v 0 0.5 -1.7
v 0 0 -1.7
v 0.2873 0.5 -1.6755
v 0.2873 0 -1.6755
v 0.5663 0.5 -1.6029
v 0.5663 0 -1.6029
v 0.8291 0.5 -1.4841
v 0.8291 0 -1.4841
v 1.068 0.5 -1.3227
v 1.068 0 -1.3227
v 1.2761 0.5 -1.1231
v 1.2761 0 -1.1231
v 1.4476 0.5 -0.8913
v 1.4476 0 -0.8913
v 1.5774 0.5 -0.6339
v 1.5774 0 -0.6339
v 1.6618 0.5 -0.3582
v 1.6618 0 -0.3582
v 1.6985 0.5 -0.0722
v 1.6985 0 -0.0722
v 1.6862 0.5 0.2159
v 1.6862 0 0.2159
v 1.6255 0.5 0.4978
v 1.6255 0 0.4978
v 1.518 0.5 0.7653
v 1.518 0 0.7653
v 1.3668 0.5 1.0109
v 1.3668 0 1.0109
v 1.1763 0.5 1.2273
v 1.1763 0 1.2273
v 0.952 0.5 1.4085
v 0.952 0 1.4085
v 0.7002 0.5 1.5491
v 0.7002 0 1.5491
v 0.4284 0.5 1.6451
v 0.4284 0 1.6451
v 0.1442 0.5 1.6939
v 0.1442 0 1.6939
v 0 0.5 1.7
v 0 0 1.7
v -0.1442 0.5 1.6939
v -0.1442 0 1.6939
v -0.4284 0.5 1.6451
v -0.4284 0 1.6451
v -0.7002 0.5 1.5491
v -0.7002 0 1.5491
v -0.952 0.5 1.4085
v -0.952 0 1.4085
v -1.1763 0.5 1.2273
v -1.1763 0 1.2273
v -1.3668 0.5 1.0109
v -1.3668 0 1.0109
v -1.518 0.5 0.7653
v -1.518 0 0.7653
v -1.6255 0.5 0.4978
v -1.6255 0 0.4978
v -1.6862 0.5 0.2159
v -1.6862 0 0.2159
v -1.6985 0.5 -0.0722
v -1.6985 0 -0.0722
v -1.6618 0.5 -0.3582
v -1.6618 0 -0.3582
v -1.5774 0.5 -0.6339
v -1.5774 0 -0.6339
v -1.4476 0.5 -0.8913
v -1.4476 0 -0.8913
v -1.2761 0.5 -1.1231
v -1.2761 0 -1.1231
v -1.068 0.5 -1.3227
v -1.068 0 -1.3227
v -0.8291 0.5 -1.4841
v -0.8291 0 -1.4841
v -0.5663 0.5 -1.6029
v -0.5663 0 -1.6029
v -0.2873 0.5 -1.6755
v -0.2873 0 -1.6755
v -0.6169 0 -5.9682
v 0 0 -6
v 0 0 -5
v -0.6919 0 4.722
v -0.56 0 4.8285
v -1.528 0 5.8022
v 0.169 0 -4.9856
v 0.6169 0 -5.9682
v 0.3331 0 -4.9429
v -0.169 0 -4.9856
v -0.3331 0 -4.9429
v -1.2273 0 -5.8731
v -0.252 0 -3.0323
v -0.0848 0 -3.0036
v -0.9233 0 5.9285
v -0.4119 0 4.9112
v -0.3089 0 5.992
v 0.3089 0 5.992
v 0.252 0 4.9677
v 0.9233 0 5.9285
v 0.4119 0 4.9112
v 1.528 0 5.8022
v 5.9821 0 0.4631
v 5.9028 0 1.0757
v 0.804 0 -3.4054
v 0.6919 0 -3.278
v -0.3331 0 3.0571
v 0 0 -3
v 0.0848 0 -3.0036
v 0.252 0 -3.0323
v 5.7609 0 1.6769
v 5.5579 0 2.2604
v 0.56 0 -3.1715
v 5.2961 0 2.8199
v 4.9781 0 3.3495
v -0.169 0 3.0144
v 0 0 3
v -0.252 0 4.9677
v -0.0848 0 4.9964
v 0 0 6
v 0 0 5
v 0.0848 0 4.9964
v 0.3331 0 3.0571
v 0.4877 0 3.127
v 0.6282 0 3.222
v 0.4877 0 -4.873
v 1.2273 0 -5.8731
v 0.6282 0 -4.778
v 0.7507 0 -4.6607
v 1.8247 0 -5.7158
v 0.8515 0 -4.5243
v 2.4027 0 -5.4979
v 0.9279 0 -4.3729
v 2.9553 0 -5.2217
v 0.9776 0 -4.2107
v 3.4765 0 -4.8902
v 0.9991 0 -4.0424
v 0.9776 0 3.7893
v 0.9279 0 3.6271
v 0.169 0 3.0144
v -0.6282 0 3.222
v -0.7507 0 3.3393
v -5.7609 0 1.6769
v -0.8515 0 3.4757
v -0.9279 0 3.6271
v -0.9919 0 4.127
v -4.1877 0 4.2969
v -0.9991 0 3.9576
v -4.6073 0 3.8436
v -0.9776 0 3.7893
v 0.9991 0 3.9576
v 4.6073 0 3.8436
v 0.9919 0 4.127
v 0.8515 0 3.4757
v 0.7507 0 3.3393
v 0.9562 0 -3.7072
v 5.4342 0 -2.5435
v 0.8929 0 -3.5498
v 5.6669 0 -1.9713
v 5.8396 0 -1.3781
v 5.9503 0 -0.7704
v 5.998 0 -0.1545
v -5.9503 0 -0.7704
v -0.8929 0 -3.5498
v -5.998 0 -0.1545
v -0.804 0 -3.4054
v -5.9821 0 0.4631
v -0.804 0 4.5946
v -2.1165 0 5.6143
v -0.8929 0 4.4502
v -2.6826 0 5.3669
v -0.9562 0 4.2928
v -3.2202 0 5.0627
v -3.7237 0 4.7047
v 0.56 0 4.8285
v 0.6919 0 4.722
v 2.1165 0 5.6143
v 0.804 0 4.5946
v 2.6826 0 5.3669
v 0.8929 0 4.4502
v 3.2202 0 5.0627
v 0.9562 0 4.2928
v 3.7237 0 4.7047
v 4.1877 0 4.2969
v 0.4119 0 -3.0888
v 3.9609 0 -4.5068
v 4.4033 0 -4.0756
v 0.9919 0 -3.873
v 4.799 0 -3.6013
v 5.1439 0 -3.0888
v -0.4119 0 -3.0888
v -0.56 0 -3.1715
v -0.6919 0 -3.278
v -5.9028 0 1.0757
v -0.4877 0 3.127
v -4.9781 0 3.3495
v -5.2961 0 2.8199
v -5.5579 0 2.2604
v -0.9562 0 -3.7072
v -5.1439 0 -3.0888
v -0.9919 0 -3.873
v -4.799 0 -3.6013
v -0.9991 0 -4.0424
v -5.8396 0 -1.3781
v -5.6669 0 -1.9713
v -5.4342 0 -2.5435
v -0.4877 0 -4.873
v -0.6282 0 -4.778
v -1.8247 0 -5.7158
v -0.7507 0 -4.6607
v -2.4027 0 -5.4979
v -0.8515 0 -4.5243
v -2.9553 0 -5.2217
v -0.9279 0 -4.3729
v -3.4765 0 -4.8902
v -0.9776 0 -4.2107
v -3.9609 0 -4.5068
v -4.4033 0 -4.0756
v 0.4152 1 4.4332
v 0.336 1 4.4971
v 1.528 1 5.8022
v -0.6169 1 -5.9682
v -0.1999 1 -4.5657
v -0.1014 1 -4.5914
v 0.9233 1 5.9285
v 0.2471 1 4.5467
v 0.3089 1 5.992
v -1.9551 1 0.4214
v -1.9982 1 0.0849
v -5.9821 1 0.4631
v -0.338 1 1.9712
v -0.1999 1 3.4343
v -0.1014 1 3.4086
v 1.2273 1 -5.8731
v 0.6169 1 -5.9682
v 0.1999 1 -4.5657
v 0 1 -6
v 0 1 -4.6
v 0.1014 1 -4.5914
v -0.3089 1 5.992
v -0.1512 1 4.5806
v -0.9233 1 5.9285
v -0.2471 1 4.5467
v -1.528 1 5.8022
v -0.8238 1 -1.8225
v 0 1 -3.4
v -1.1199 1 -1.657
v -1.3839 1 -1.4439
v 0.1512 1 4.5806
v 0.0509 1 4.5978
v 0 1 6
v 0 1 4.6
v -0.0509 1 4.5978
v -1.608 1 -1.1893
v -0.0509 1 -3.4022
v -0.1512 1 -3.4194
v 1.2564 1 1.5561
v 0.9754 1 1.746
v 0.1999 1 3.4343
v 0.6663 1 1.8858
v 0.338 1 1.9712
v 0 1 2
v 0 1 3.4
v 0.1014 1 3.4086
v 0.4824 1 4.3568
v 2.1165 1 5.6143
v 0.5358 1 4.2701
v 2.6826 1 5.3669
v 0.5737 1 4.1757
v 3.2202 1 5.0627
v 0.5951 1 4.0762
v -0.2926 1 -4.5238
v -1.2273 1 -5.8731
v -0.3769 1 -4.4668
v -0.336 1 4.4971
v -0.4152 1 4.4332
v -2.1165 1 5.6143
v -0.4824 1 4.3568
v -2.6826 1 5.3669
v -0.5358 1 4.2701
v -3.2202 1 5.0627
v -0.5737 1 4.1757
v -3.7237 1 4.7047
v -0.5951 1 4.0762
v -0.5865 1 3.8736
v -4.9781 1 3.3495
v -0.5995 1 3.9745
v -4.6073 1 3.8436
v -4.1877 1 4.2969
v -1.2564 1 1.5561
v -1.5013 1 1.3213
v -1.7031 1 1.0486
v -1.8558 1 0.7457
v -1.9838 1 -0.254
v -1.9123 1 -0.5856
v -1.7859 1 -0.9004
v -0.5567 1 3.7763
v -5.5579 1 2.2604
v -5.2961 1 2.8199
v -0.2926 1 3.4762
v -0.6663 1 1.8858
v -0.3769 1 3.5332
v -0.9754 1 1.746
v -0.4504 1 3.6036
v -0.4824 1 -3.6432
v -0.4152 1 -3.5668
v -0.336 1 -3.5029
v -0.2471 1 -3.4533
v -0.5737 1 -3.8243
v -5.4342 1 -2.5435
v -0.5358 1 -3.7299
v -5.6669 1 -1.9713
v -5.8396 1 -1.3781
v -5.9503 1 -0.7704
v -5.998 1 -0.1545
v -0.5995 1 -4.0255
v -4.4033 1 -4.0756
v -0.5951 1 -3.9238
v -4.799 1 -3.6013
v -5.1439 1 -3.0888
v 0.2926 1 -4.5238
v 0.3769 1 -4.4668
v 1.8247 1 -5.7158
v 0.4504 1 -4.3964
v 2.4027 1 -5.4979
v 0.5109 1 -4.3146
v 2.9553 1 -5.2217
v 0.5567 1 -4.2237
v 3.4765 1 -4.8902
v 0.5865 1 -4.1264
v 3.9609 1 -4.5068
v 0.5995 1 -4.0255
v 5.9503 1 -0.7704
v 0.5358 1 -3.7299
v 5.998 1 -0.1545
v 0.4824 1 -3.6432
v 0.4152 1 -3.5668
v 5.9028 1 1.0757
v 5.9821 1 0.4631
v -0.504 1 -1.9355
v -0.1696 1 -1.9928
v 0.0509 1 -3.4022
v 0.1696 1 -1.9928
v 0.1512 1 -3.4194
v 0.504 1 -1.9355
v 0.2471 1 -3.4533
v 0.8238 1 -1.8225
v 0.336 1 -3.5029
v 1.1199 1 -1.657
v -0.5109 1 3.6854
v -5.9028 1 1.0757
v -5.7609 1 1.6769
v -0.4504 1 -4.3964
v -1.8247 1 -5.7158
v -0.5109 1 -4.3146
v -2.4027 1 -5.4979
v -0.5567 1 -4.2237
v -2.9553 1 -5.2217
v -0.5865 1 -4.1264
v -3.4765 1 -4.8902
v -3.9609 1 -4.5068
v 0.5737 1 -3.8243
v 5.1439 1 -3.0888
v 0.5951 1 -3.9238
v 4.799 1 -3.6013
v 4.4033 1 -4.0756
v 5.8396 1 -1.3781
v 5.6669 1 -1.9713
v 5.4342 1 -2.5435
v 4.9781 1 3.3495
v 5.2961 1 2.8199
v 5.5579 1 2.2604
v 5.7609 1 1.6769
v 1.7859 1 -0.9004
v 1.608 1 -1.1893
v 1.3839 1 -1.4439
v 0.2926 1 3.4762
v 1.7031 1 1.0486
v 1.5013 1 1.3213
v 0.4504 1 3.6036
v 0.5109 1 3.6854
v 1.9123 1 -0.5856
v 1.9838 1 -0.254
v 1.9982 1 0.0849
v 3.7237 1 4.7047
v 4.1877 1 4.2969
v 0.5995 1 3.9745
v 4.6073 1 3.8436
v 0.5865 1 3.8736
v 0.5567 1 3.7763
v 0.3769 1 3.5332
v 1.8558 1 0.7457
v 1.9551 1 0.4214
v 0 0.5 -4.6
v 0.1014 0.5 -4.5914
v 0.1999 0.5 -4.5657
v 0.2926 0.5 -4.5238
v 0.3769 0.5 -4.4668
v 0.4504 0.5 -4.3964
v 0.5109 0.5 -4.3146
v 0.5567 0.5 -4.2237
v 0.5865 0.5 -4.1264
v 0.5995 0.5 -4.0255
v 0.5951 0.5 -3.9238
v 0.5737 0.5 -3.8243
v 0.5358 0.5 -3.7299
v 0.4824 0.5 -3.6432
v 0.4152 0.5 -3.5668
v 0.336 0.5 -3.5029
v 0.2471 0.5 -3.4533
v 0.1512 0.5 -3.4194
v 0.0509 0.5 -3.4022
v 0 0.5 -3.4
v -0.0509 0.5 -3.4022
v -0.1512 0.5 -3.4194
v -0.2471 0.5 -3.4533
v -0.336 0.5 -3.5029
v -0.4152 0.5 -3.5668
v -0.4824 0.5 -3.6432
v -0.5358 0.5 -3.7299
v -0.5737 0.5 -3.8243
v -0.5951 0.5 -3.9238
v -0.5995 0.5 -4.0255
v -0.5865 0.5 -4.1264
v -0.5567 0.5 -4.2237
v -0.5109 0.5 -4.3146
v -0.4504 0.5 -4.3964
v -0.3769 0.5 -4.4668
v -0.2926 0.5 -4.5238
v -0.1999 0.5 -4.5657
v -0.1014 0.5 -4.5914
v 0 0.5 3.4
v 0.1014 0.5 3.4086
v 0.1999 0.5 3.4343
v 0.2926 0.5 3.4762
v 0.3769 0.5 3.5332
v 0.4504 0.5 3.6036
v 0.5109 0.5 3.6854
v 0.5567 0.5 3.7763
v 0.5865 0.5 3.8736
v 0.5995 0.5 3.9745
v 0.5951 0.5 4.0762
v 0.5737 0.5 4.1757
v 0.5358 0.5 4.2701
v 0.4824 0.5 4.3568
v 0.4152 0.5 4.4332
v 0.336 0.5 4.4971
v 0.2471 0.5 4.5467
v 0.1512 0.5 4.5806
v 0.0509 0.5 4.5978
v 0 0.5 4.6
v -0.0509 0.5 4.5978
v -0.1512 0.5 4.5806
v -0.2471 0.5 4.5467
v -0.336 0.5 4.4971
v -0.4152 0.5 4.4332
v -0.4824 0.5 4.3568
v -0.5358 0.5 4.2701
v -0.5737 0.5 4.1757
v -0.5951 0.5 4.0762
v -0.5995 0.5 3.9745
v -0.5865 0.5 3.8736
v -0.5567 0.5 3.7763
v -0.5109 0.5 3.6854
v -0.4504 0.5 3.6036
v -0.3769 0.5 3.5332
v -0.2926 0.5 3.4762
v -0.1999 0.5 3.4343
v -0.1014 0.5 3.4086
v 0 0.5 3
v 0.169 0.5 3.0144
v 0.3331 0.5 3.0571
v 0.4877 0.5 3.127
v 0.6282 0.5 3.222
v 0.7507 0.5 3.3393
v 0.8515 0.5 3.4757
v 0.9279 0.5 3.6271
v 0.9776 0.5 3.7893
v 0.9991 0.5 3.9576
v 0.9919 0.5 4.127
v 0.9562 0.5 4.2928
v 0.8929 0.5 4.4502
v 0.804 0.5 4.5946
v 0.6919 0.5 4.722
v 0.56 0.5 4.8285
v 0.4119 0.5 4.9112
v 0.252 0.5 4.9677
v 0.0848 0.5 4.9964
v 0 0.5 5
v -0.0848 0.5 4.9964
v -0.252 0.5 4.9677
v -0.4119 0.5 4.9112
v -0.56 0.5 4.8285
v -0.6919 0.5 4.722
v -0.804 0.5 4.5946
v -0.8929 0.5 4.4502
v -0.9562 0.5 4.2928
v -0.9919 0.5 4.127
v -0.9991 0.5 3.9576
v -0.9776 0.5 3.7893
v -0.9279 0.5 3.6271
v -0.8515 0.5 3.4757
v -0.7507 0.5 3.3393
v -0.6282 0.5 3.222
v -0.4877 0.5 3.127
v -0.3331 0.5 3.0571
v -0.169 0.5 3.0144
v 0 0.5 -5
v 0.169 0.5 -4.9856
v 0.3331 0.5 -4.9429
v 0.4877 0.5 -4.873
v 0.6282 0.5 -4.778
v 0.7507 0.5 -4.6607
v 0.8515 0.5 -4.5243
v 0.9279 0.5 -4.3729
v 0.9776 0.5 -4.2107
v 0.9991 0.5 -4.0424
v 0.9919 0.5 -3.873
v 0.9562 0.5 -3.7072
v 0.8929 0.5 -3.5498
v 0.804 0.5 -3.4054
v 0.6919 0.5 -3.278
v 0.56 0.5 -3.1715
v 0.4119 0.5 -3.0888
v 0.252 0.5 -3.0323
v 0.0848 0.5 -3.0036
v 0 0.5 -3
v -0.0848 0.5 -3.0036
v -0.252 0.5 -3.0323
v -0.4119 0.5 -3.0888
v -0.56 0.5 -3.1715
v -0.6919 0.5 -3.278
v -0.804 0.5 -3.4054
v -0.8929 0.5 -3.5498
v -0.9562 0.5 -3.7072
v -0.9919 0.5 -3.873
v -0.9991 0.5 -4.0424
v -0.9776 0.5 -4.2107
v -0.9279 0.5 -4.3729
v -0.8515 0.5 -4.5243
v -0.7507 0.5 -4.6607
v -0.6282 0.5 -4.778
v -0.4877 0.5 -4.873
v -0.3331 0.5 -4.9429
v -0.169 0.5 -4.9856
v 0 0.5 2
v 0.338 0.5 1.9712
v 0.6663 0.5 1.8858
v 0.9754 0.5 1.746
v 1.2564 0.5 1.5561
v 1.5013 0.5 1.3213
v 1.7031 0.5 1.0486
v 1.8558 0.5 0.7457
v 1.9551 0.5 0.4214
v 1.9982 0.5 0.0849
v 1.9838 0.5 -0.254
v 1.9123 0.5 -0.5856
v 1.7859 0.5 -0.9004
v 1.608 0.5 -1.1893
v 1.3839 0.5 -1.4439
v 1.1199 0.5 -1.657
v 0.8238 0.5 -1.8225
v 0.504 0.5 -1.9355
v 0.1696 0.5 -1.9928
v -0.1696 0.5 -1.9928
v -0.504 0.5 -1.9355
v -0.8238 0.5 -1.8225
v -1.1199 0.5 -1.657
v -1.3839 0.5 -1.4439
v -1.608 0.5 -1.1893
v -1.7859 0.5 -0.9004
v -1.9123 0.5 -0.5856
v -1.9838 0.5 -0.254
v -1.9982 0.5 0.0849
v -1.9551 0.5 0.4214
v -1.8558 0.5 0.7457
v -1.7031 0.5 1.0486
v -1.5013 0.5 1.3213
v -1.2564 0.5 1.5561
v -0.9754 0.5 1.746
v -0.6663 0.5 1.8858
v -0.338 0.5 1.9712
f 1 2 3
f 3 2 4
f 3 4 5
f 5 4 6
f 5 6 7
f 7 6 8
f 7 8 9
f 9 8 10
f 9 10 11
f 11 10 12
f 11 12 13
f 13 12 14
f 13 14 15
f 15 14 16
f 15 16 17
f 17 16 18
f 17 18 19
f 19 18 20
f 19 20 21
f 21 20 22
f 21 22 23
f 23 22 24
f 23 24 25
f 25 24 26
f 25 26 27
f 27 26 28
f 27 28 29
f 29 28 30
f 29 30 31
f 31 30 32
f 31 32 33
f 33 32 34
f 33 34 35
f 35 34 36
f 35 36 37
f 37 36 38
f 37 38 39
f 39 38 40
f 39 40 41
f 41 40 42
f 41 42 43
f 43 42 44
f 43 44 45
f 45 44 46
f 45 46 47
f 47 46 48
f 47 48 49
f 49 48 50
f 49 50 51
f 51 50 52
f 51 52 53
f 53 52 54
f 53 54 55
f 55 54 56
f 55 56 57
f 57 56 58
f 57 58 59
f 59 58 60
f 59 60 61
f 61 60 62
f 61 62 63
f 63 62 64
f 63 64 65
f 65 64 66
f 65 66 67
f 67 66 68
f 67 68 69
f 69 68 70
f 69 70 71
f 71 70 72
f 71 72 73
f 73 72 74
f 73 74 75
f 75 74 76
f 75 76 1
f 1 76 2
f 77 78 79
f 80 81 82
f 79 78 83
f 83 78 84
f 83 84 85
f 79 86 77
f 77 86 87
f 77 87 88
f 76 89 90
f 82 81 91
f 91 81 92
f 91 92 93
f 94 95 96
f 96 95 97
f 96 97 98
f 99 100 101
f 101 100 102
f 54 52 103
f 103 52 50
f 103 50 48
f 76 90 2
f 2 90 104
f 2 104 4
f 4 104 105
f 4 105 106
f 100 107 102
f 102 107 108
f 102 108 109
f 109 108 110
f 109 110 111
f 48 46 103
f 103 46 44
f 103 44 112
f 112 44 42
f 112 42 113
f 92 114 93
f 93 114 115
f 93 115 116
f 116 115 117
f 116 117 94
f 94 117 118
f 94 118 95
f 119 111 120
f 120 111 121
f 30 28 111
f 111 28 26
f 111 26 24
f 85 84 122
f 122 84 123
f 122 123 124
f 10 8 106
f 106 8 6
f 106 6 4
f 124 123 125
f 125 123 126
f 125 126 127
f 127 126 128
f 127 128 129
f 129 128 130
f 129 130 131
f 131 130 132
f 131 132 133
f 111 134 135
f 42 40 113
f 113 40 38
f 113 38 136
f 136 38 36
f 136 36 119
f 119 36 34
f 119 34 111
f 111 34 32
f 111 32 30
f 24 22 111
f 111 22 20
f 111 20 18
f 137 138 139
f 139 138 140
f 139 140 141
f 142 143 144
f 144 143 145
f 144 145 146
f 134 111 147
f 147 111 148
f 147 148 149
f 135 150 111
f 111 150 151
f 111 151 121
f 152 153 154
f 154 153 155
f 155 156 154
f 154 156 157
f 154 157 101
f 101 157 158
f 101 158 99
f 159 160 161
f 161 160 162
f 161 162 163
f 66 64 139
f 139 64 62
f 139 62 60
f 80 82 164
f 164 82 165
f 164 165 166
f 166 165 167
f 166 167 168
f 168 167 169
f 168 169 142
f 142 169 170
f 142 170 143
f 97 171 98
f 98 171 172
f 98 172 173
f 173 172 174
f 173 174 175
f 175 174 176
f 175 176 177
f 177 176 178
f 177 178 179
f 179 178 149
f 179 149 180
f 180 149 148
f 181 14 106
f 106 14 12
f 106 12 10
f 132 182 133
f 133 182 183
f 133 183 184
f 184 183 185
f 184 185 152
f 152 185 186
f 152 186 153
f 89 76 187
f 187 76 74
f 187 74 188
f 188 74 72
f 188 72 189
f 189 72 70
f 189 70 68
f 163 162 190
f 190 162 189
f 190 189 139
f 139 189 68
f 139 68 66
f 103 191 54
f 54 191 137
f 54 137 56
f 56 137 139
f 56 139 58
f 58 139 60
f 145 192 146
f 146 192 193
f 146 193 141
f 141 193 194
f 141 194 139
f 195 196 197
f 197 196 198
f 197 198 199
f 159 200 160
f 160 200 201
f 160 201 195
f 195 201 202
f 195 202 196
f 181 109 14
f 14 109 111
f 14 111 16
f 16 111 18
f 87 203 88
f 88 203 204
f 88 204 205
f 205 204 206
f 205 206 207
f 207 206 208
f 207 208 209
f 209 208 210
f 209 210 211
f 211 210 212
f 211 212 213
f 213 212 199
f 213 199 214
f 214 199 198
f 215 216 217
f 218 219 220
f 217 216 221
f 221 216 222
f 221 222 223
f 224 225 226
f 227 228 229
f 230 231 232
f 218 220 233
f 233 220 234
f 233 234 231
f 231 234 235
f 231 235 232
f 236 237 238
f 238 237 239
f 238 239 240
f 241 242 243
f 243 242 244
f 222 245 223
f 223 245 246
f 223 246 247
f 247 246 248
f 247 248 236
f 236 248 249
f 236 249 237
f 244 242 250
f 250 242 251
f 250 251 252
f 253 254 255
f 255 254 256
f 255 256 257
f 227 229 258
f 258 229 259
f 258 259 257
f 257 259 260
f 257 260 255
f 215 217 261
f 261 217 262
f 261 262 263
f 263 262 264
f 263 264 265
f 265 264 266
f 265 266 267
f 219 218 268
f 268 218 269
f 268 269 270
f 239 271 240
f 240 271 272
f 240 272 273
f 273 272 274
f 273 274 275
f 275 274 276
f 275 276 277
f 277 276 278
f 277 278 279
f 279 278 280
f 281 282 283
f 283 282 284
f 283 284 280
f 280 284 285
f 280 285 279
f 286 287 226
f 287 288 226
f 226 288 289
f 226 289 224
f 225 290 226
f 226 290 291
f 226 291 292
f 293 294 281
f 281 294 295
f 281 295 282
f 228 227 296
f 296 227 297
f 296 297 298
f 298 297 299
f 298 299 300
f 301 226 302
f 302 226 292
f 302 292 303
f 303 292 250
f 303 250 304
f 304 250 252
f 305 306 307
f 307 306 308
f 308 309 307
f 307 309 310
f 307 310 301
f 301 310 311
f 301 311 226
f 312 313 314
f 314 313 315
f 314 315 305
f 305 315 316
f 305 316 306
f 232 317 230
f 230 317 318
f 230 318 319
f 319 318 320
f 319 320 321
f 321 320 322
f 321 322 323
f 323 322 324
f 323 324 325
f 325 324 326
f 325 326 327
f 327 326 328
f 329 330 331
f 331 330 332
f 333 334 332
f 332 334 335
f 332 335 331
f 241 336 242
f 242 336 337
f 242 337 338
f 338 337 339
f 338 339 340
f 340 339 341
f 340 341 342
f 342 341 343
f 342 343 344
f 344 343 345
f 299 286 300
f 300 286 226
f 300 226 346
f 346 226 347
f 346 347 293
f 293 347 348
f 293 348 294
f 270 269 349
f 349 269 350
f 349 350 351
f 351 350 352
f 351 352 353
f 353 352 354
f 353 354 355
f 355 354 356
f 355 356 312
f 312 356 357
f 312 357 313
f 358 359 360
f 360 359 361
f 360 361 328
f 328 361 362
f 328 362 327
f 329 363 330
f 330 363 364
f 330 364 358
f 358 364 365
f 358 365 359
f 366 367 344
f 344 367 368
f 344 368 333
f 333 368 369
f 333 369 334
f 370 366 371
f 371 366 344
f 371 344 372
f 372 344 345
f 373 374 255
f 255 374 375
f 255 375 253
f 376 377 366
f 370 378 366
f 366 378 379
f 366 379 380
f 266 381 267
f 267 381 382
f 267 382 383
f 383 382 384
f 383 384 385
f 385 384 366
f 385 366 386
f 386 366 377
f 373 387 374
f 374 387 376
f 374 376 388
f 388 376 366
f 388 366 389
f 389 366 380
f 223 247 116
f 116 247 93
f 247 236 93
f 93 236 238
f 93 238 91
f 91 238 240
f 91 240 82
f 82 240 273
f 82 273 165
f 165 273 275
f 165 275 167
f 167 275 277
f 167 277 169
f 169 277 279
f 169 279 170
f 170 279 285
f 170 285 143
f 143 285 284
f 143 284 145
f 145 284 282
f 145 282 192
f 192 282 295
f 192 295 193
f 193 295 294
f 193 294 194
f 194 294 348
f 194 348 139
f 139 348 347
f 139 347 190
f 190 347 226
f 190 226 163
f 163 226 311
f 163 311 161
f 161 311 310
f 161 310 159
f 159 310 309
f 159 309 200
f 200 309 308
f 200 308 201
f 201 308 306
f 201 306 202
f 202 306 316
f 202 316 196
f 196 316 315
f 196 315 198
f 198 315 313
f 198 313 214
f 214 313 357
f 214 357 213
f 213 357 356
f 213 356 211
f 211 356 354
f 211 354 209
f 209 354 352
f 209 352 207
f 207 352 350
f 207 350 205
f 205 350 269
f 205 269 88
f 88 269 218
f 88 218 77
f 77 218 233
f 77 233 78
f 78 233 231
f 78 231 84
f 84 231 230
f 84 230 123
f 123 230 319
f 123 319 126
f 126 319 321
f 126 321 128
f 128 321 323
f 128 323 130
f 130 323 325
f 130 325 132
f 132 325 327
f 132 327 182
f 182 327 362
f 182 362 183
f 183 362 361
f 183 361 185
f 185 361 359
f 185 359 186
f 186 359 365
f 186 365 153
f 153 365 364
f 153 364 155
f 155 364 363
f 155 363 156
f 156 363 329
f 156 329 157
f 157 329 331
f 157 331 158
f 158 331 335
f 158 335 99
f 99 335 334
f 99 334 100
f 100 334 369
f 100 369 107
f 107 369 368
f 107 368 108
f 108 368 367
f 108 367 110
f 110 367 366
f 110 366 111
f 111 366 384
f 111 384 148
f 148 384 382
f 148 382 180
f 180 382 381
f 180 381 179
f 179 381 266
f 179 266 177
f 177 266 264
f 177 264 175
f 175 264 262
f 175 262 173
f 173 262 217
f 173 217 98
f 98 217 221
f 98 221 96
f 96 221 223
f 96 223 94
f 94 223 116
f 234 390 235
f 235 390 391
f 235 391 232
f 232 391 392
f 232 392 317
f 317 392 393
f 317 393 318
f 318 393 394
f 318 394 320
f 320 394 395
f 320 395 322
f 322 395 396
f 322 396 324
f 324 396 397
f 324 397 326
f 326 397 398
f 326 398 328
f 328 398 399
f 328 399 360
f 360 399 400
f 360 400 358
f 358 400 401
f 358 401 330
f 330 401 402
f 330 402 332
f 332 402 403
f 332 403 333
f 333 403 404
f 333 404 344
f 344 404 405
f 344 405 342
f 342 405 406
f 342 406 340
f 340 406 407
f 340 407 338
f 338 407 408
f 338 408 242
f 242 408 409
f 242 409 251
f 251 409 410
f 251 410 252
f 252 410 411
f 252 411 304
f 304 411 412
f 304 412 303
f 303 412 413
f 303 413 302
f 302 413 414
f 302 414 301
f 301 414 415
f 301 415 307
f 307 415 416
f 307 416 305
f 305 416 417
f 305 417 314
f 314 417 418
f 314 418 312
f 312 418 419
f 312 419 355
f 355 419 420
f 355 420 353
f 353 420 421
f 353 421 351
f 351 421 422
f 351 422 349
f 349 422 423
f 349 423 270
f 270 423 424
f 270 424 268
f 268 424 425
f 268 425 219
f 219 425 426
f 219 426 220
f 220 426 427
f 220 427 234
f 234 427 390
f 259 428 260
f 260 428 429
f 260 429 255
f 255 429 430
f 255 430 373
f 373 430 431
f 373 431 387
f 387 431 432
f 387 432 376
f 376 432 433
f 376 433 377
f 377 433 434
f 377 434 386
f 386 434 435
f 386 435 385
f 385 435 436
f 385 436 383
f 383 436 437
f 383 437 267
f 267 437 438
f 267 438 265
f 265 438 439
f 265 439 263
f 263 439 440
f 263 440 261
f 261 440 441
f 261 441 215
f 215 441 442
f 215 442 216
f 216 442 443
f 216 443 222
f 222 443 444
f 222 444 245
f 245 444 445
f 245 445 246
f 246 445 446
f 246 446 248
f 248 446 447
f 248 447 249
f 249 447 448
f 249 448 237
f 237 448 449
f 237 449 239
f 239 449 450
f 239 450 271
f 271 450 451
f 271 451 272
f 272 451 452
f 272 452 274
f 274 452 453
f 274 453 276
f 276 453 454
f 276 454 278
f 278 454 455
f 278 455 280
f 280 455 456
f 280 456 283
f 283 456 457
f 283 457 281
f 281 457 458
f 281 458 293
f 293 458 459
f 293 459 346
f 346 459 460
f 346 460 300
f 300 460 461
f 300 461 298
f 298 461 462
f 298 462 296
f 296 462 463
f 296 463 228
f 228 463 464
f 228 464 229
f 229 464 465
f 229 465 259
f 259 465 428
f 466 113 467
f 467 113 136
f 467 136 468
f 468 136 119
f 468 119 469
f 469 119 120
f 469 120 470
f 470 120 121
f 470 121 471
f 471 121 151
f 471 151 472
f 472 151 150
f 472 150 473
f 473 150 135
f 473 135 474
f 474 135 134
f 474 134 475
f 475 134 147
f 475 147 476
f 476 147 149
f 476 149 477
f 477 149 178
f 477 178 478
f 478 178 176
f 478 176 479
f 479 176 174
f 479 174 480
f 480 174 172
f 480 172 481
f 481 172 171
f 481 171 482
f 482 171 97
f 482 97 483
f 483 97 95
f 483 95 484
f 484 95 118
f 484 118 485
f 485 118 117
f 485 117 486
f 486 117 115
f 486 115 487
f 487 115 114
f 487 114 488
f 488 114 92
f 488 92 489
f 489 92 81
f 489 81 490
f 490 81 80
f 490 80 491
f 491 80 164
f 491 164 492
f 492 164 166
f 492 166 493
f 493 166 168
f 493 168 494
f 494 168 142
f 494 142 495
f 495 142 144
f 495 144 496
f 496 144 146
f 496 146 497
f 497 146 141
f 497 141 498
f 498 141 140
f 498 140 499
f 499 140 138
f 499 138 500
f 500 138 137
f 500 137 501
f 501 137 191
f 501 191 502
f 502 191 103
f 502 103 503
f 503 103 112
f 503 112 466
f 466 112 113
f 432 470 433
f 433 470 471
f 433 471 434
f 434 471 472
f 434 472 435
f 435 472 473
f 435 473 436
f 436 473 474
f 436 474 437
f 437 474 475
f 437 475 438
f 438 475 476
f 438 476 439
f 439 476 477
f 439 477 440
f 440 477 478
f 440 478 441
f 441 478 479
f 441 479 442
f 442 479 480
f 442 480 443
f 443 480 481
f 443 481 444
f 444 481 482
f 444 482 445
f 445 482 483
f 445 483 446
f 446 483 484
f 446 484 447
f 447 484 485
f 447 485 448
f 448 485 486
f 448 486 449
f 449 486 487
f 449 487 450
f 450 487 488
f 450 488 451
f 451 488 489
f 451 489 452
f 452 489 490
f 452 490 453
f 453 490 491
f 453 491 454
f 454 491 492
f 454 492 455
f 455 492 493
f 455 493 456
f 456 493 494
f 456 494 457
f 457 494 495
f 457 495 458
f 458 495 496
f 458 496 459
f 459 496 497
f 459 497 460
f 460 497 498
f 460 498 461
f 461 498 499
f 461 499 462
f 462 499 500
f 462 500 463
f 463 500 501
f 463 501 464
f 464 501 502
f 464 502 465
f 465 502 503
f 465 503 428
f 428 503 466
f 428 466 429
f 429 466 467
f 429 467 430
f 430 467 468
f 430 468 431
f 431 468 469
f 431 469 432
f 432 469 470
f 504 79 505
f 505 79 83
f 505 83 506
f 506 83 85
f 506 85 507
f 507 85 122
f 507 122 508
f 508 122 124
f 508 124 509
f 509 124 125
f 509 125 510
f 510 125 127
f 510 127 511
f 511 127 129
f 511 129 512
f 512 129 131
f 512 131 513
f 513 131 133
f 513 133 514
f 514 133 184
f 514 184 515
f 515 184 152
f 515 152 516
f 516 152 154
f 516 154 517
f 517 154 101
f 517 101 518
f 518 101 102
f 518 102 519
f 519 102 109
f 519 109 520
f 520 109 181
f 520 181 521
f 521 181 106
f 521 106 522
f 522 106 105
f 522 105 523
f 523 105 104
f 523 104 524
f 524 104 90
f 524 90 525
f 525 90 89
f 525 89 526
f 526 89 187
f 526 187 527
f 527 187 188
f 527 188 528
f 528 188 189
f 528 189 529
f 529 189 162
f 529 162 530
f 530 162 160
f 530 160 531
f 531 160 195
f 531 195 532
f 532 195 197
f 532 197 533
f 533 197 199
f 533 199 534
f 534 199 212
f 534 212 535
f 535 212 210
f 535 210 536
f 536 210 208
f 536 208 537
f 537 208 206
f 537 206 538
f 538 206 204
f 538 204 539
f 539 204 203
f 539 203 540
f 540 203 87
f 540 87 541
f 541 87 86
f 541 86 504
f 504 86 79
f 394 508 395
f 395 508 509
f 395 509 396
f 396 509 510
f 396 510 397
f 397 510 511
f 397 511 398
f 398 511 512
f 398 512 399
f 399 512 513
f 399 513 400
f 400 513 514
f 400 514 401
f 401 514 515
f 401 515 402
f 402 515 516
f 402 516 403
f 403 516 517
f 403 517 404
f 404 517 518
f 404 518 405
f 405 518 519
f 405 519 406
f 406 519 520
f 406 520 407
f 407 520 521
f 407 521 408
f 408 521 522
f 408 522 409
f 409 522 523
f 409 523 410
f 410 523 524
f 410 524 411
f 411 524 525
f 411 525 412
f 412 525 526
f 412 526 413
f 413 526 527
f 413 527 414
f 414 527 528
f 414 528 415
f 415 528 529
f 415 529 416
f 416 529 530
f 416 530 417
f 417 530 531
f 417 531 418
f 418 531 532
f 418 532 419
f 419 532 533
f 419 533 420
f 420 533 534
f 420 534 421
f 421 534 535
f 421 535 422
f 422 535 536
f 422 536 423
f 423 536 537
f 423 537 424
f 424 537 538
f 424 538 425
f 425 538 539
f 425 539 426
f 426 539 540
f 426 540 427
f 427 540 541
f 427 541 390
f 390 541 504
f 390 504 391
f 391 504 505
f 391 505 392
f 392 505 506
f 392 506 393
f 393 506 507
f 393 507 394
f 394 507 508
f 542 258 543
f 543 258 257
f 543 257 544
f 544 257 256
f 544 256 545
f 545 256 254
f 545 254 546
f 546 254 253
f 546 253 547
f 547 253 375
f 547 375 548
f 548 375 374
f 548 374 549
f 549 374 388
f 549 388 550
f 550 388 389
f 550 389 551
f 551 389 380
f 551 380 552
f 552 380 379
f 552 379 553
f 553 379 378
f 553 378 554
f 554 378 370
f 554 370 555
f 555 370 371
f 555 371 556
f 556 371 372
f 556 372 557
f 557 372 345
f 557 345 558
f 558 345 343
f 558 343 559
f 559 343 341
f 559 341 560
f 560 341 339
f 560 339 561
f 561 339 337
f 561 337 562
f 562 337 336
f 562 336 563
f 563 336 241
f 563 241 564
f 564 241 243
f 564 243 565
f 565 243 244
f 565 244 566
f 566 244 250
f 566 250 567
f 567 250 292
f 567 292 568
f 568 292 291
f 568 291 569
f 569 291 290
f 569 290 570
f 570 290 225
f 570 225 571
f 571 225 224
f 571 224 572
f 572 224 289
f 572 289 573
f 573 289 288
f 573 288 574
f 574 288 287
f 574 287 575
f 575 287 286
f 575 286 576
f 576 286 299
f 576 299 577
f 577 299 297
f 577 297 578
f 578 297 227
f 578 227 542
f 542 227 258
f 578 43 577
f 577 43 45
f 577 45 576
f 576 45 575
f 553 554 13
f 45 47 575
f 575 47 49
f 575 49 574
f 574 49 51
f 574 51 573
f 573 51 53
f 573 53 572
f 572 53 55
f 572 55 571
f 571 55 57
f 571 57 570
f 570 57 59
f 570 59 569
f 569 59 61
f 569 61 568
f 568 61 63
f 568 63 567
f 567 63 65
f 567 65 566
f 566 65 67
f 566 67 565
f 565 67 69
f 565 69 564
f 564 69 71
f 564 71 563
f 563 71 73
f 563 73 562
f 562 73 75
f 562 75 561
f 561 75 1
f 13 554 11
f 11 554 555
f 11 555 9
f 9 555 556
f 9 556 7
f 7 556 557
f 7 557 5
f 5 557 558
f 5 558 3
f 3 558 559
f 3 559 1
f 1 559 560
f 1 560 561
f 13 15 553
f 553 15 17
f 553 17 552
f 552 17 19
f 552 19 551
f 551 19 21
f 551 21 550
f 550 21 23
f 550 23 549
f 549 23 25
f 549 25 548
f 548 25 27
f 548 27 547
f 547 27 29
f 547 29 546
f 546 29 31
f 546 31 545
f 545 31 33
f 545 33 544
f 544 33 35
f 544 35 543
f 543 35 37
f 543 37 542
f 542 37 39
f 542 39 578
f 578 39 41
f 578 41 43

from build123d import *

# Parameters (mm, degrees)
SKETCH1_R           = 6
SKETCH1_R_2         = 1.7
SKETCH1_R_3         = 1
SKETCH1_R_4         = 0.6
BASEPLATE_DEPTH     = 1
SKETCH1_3_R         = 0.6
SCREWHOLES_DEPTH    = 2
SKETCH1_4_R         = 1
SKETCH1_4_R_2       = 0.6
SCREWHATSLOTS_DEPTH = 0.5
SKETCH2_R           = 2
BEARINGSLOT_DEPTH   = 0.5


with BuildPart() as part:
    # Sketch1 → BasePlate (new body)
    with BuildSketch(Plane(origin=(0, 0, 0), x_dir=(1, 0, 0), z_dir=(0, 1, 0))):
        Circle(SKETCH1_R)
        Circle(SKETCH1_R_2, mode=Mode.SUBTRACT)
        with Locations((0, 4)):
            Circle(SKETCH1_R_3, mode=Mode.SUBTRACT)
        with Locations((0, -4)):
            Circle(SKETCH1_R_3, mode=Mode.SUBTRACT)
        with Locations((0, -4)):
            Circle(SKETCH1_R_4)
        with Locations((0, 4)):
            Circle(SKETCH1_R_4)
        with Locations((0, 4)):
            Circle(SKETCH1_R_3)
        with Locations((0, 4)):
            Circle(SKETCH1_R_4, mode=Mode.SUBTRACT)
        with Locations((0, -4)):
            Circle(SKETCH1_R_3)
        with Locations((0, -4)):
            Circle(SKETCH1_R_4, mode=Mode.SUBTRACT)
    extrude(amount=BASEPLATE_DEPTH)

    # Sketch1<3> → ScrewHoles (cut, through all)
    with BuildSketch(Plane(origin=(0, 0, 0), x_dir=(1, 0, 0), z_dir=(0, 1, 0))):
        with Locations((0, -4)):
            Circle(SKETCH1_3_R)
        with Locations((0, 4)):
            Circle(SKETCH1_3_R)
    extrude(amount=SCREWHOLES_DEPTH, mode=Mode.SUBTRACT)

    # Sketch1<4> → ScrewHatSlots (cut)
    with BuildSketch(Plane(origin=(0, 0, 0), x_dir=(1, 0, 0), z_dir=(0, 1, 0))):
        with Locations((0, -4)):
            Circle(SKETCH1_4_R)
        with Locations((0, -4)):
            Circle(SKETCH1_4_R_2, mode=Mode.SUBTRACT)
        with Locations((0, 4)):
            Circle(SKETCH1_4_R)
        with Locations((0, 4)):
            Circle(SKETCH1_4_R_2, mode=Mode.SUBTRACT)
    extrude(amount=SCREWHATSLOTS_DEPTH, mode=Mode.SUBTRACT)

    # Sketch2 → BearingSlot (cut)
    with BuildSketch(Plane(origin=(0, 1, 0), x_dir=(1, 0, 0), z_dir=(0, 1, 0))):
        Circle(SKETCH2_R)
    extrude(amount=-BEARINGSLOT_DEPTH, mode=Mode.SUBTRACT)


solid = part.part
